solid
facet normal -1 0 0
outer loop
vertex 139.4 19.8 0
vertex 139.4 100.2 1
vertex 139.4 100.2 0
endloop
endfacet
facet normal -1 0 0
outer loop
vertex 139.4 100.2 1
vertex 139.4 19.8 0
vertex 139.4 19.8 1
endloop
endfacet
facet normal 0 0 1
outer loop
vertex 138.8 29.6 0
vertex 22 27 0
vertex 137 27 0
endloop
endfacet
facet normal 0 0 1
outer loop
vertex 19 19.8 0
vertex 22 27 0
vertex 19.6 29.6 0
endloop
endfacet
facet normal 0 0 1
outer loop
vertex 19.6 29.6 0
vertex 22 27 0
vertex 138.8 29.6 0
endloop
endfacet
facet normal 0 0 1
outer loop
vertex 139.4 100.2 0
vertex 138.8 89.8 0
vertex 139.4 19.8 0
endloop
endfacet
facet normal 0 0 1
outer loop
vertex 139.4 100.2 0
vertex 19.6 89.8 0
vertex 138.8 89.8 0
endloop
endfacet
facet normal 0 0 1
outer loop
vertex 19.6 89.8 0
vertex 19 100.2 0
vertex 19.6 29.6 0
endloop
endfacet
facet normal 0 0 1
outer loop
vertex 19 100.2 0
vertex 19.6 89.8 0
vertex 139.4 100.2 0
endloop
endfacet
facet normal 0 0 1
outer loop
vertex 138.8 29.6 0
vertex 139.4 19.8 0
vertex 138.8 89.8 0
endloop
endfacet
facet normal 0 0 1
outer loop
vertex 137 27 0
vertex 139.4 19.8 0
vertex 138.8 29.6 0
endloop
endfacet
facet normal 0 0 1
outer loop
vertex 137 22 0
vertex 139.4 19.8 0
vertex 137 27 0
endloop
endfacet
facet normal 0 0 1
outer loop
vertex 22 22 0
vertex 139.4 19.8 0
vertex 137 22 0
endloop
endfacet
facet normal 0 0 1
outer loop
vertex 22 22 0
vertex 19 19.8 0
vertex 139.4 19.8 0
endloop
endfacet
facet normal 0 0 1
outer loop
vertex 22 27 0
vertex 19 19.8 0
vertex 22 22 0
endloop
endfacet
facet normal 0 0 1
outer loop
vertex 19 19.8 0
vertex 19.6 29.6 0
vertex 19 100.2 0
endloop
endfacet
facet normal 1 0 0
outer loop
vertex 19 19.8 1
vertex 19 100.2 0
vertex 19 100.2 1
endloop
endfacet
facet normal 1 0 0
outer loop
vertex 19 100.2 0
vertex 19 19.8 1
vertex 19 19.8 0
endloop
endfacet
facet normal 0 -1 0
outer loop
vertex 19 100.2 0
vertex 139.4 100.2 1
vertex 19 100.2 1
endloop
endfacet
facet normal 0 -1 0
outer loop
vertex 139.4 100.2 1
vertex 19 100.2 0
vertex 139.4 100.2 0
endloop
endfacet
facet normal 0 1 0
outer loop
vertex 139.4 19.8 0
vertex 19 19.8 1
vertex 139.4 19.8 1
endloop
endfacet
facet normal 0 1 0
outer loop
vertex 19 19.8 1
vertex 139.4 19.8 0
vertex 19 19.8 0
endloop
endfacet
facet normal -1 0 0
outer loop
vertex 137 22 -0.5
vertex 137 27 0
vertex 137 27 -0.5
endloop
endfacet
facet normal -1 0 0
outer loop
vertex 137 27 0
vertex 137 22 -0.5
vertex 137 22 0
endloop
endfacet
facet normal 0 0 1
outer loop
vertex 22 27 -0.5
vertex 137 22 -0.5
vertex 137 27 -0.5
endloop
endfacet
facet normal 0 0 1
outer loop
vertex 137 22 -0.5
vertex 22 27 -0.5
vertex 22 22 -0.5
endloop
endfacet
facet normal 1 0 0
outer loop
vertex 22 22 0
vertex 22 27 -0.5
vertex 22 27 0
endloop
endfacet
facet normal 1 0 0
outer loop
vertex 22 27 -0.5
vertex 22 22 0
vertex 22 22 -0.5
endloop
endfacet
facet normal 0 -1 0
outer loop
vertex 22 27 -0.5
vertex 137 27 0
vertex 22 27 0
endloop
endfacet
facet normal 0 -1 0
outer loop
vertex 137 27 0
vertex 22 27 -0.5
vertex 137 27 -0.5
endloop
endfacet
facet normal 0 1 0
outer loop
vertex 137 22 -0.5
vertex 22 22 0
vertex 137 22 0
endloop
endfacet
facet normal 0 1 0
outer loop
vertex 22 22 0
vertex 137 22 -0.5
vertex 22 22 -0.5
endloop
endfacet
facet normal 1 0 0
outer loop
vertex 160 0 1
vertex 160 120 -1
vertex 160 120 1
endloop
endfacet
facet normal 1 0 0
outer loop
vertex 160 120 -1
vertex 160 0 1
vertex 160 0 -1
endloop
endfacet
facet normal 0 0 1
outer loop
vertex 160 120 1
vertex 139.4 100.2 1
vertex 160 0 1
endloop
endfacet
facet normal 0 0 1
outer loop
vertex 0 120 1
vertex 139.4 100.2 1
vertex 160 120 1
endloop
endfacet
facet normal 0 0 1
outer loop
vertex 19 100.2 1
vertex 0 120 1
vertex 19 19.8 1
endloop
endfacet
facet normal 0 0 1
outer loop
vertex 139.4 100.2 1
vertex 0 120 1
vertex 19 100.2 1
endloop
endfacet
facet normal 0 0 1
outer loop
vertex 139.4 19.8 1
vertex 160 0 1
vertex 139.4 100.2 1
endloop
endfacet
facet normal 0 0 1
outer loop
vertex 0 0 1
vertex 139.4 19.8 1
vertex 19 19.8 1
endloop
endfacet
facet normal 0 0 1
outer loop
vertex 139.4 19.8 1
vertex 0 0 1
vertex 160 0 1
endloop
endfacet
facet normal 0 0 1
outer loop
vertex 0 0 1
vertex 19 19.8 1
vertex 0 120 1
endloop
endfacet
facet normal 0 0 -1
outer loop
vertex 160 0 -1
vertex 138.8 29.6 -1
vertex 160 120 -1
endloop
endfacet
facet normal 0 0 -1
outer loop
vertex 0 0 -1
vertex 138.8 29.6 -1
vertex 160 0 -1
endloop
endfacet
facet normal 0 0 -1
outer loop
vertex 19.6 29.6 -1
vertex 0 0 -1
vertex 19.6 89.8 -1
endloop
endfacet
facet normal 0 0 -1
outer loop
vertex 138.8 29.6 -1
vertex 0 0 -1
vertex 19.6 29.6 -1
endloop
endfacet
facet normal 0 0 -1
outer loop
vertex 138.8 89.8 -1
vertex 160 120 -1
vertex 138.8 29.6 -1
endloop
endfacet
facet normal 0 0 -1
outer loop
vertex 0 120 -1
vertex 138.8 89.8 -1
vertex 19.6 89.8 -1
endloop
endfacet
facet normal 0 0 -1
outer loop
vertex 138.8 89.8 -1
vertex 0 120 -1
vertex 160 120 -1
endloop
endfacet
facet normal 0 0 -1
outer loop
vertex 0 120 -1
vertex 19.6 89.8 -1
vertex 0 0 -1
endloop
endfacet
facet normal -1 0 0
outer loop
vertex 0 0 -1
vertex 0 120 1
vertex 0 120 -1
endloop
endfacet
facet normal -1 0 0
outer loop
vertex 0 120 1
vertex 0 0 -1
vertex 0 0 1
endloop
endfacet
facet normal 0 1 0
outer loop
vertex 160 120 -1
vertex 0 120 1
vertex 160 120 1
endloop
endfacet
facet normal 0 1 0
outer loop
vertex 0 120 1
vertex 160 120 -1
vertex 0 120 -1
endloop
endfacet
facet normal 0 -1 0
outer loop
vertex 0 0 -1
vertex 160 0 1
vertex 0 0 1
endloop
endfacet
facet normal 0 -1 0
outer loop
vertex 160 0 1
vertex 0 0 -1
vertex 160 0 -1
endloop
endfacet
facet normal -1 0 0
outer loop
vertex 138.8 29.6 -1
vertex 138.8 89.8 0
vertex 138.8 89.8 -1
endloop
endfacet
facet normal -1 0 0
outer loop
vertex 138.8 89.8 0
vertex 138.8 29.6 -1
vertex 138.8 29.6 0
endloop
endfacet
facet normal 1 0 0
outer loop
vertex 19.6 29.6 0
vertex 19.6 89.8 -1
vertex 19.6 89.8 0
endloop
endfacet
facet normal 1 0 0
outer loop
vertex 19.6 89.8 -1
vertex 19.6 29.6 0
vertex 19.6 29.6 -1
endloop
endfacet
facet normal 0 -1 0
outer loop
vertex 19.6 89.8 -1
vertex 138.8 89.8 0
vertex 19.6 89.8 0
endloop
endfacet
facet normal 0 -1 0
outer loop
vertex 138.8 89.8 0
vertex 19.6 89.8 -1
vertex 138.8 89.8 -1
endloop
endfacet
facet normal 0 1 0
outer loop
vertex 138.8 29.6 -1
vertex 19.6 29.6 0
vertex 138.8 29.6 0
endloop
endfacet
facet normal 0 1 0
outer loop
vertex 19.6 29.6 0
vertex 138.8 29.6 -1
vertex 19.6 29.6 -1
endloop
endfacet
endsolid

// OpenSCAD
// file: numeric_stencils.scad
// text_on_cube.scad - Example for text() usage in OpenSCAD

echo(version=version());

include <specs.scad>;

module render_stencils(number, border=10) {
    // Loop to generate 10 plates
    for (i = [0:number]) {
        plate_row= i>4 ? -plate_height - border : 0;
        n= i>4 ? i-5 : i;
        
        // Translate each plate to its position
        translate([n * (plate_width + border), plate_row, 0]) {
            union() {
                if (i == 0 || i == 4 || i == 6 || i == 8 || i == 9) {
                    if (i == 0 || i == 6 || i == 8) { 
                        translate([plate_width / 2 - stegbreite, font_size / 2, 0]) {
                            color("hotpink") {
                                cube([stegbreite*2, font_size/5, plate_thickness]);
                            }
                        }
                    }
                    if (i == 4 || i == 6 || i == 8 || i == 9) {
                        translate([plate_width / 2 - stegbreite, font_size/1.45, 0]) {
                            color("hotpink") {
                                cube([stegbreite*2, font_size/5, plate_thickness]);
                            }
                        }
                    }
                    if (i == 0 || i== 8 || i == 9) {
                        translate([plate_width / 2 - stegbreite, font_size/1.06, 0]) {
                            color("hotpink") {
                                cube([stegbreite*2, font_size/8.33, plate_thickness]);
                            }
                        }
                    }
                }
            difference() {
                // Create the plate
                color("skyblue", 0.5) {
                    difference() {
                        cube([plate_width, plate_height, plate_thickness]);
                        translate([plate_width / 2, 4.5, -0.1]) {
                            cylinder(h=0.8, d=5.1);
                        }
                    }
                }
                

                color("hotpink");
                // Emboss the number
                translate([plate_width/2, plate_height/2, -plate_thickness]) {
                        linear_extrude(plate_thickness*4) {
                            text(str(i), font=font, size=font_size, halign="center",       valign="center");
                        }
                    }
                }
            }
        }
    }
}

rotate([180,0,0]) {
    render_stencils(9, 2);
}
// file: specs.scad
font = "xscale"; //["Liberation Sans", "Liberation Sans:style=Bold", "Liberation Sans:style=Italic", "Liberation Mono", "Liberation Serif"]


// Set the plate dimensions
plate_thickness = 1;
plate_height = 80;
plate_width = 40;
stegbreite = 1;

font_size = 50;

plate_row = 0;
// main file
include <specs.scad>;
use <numeric_stencils.scad>;

border = 10;
fit = 0.2;

render_stencils = false;

translate([0, 0, -1]) {
    difference() {
        difference() {
            color("white") {
                cube([border*4 + plate_width * 3, border*4 + plate_height, 2]);
            }
            union() {
                color("deepskyblue") {
                    translate([2*border-1, 2*border-fit, 1]) {
                            cube([(plate_width * 3)+2*fit, plate_height+(2*fit), 3]);
                        }
                }
                translate([2*border + 2, 2*border+2, 0.5]) {
                        cube([plate_width*3-5, 5, 2]);
                }
            }
        }
        color("hotpink") {
            translate([2*border-2*fit, 3*border-(2*fit), -1]) {
                cube([(plate_width * 3)-(4*fit), plate_height - 2*border+fit, 10]);
            }
        }
    }
};


if (render_stencils) {
    color("yellow", 0.6) {
        translate([2*border-0.9, 2*border, 0]) {
            render_stencils(2, border=0.1);
        }
    }
}
